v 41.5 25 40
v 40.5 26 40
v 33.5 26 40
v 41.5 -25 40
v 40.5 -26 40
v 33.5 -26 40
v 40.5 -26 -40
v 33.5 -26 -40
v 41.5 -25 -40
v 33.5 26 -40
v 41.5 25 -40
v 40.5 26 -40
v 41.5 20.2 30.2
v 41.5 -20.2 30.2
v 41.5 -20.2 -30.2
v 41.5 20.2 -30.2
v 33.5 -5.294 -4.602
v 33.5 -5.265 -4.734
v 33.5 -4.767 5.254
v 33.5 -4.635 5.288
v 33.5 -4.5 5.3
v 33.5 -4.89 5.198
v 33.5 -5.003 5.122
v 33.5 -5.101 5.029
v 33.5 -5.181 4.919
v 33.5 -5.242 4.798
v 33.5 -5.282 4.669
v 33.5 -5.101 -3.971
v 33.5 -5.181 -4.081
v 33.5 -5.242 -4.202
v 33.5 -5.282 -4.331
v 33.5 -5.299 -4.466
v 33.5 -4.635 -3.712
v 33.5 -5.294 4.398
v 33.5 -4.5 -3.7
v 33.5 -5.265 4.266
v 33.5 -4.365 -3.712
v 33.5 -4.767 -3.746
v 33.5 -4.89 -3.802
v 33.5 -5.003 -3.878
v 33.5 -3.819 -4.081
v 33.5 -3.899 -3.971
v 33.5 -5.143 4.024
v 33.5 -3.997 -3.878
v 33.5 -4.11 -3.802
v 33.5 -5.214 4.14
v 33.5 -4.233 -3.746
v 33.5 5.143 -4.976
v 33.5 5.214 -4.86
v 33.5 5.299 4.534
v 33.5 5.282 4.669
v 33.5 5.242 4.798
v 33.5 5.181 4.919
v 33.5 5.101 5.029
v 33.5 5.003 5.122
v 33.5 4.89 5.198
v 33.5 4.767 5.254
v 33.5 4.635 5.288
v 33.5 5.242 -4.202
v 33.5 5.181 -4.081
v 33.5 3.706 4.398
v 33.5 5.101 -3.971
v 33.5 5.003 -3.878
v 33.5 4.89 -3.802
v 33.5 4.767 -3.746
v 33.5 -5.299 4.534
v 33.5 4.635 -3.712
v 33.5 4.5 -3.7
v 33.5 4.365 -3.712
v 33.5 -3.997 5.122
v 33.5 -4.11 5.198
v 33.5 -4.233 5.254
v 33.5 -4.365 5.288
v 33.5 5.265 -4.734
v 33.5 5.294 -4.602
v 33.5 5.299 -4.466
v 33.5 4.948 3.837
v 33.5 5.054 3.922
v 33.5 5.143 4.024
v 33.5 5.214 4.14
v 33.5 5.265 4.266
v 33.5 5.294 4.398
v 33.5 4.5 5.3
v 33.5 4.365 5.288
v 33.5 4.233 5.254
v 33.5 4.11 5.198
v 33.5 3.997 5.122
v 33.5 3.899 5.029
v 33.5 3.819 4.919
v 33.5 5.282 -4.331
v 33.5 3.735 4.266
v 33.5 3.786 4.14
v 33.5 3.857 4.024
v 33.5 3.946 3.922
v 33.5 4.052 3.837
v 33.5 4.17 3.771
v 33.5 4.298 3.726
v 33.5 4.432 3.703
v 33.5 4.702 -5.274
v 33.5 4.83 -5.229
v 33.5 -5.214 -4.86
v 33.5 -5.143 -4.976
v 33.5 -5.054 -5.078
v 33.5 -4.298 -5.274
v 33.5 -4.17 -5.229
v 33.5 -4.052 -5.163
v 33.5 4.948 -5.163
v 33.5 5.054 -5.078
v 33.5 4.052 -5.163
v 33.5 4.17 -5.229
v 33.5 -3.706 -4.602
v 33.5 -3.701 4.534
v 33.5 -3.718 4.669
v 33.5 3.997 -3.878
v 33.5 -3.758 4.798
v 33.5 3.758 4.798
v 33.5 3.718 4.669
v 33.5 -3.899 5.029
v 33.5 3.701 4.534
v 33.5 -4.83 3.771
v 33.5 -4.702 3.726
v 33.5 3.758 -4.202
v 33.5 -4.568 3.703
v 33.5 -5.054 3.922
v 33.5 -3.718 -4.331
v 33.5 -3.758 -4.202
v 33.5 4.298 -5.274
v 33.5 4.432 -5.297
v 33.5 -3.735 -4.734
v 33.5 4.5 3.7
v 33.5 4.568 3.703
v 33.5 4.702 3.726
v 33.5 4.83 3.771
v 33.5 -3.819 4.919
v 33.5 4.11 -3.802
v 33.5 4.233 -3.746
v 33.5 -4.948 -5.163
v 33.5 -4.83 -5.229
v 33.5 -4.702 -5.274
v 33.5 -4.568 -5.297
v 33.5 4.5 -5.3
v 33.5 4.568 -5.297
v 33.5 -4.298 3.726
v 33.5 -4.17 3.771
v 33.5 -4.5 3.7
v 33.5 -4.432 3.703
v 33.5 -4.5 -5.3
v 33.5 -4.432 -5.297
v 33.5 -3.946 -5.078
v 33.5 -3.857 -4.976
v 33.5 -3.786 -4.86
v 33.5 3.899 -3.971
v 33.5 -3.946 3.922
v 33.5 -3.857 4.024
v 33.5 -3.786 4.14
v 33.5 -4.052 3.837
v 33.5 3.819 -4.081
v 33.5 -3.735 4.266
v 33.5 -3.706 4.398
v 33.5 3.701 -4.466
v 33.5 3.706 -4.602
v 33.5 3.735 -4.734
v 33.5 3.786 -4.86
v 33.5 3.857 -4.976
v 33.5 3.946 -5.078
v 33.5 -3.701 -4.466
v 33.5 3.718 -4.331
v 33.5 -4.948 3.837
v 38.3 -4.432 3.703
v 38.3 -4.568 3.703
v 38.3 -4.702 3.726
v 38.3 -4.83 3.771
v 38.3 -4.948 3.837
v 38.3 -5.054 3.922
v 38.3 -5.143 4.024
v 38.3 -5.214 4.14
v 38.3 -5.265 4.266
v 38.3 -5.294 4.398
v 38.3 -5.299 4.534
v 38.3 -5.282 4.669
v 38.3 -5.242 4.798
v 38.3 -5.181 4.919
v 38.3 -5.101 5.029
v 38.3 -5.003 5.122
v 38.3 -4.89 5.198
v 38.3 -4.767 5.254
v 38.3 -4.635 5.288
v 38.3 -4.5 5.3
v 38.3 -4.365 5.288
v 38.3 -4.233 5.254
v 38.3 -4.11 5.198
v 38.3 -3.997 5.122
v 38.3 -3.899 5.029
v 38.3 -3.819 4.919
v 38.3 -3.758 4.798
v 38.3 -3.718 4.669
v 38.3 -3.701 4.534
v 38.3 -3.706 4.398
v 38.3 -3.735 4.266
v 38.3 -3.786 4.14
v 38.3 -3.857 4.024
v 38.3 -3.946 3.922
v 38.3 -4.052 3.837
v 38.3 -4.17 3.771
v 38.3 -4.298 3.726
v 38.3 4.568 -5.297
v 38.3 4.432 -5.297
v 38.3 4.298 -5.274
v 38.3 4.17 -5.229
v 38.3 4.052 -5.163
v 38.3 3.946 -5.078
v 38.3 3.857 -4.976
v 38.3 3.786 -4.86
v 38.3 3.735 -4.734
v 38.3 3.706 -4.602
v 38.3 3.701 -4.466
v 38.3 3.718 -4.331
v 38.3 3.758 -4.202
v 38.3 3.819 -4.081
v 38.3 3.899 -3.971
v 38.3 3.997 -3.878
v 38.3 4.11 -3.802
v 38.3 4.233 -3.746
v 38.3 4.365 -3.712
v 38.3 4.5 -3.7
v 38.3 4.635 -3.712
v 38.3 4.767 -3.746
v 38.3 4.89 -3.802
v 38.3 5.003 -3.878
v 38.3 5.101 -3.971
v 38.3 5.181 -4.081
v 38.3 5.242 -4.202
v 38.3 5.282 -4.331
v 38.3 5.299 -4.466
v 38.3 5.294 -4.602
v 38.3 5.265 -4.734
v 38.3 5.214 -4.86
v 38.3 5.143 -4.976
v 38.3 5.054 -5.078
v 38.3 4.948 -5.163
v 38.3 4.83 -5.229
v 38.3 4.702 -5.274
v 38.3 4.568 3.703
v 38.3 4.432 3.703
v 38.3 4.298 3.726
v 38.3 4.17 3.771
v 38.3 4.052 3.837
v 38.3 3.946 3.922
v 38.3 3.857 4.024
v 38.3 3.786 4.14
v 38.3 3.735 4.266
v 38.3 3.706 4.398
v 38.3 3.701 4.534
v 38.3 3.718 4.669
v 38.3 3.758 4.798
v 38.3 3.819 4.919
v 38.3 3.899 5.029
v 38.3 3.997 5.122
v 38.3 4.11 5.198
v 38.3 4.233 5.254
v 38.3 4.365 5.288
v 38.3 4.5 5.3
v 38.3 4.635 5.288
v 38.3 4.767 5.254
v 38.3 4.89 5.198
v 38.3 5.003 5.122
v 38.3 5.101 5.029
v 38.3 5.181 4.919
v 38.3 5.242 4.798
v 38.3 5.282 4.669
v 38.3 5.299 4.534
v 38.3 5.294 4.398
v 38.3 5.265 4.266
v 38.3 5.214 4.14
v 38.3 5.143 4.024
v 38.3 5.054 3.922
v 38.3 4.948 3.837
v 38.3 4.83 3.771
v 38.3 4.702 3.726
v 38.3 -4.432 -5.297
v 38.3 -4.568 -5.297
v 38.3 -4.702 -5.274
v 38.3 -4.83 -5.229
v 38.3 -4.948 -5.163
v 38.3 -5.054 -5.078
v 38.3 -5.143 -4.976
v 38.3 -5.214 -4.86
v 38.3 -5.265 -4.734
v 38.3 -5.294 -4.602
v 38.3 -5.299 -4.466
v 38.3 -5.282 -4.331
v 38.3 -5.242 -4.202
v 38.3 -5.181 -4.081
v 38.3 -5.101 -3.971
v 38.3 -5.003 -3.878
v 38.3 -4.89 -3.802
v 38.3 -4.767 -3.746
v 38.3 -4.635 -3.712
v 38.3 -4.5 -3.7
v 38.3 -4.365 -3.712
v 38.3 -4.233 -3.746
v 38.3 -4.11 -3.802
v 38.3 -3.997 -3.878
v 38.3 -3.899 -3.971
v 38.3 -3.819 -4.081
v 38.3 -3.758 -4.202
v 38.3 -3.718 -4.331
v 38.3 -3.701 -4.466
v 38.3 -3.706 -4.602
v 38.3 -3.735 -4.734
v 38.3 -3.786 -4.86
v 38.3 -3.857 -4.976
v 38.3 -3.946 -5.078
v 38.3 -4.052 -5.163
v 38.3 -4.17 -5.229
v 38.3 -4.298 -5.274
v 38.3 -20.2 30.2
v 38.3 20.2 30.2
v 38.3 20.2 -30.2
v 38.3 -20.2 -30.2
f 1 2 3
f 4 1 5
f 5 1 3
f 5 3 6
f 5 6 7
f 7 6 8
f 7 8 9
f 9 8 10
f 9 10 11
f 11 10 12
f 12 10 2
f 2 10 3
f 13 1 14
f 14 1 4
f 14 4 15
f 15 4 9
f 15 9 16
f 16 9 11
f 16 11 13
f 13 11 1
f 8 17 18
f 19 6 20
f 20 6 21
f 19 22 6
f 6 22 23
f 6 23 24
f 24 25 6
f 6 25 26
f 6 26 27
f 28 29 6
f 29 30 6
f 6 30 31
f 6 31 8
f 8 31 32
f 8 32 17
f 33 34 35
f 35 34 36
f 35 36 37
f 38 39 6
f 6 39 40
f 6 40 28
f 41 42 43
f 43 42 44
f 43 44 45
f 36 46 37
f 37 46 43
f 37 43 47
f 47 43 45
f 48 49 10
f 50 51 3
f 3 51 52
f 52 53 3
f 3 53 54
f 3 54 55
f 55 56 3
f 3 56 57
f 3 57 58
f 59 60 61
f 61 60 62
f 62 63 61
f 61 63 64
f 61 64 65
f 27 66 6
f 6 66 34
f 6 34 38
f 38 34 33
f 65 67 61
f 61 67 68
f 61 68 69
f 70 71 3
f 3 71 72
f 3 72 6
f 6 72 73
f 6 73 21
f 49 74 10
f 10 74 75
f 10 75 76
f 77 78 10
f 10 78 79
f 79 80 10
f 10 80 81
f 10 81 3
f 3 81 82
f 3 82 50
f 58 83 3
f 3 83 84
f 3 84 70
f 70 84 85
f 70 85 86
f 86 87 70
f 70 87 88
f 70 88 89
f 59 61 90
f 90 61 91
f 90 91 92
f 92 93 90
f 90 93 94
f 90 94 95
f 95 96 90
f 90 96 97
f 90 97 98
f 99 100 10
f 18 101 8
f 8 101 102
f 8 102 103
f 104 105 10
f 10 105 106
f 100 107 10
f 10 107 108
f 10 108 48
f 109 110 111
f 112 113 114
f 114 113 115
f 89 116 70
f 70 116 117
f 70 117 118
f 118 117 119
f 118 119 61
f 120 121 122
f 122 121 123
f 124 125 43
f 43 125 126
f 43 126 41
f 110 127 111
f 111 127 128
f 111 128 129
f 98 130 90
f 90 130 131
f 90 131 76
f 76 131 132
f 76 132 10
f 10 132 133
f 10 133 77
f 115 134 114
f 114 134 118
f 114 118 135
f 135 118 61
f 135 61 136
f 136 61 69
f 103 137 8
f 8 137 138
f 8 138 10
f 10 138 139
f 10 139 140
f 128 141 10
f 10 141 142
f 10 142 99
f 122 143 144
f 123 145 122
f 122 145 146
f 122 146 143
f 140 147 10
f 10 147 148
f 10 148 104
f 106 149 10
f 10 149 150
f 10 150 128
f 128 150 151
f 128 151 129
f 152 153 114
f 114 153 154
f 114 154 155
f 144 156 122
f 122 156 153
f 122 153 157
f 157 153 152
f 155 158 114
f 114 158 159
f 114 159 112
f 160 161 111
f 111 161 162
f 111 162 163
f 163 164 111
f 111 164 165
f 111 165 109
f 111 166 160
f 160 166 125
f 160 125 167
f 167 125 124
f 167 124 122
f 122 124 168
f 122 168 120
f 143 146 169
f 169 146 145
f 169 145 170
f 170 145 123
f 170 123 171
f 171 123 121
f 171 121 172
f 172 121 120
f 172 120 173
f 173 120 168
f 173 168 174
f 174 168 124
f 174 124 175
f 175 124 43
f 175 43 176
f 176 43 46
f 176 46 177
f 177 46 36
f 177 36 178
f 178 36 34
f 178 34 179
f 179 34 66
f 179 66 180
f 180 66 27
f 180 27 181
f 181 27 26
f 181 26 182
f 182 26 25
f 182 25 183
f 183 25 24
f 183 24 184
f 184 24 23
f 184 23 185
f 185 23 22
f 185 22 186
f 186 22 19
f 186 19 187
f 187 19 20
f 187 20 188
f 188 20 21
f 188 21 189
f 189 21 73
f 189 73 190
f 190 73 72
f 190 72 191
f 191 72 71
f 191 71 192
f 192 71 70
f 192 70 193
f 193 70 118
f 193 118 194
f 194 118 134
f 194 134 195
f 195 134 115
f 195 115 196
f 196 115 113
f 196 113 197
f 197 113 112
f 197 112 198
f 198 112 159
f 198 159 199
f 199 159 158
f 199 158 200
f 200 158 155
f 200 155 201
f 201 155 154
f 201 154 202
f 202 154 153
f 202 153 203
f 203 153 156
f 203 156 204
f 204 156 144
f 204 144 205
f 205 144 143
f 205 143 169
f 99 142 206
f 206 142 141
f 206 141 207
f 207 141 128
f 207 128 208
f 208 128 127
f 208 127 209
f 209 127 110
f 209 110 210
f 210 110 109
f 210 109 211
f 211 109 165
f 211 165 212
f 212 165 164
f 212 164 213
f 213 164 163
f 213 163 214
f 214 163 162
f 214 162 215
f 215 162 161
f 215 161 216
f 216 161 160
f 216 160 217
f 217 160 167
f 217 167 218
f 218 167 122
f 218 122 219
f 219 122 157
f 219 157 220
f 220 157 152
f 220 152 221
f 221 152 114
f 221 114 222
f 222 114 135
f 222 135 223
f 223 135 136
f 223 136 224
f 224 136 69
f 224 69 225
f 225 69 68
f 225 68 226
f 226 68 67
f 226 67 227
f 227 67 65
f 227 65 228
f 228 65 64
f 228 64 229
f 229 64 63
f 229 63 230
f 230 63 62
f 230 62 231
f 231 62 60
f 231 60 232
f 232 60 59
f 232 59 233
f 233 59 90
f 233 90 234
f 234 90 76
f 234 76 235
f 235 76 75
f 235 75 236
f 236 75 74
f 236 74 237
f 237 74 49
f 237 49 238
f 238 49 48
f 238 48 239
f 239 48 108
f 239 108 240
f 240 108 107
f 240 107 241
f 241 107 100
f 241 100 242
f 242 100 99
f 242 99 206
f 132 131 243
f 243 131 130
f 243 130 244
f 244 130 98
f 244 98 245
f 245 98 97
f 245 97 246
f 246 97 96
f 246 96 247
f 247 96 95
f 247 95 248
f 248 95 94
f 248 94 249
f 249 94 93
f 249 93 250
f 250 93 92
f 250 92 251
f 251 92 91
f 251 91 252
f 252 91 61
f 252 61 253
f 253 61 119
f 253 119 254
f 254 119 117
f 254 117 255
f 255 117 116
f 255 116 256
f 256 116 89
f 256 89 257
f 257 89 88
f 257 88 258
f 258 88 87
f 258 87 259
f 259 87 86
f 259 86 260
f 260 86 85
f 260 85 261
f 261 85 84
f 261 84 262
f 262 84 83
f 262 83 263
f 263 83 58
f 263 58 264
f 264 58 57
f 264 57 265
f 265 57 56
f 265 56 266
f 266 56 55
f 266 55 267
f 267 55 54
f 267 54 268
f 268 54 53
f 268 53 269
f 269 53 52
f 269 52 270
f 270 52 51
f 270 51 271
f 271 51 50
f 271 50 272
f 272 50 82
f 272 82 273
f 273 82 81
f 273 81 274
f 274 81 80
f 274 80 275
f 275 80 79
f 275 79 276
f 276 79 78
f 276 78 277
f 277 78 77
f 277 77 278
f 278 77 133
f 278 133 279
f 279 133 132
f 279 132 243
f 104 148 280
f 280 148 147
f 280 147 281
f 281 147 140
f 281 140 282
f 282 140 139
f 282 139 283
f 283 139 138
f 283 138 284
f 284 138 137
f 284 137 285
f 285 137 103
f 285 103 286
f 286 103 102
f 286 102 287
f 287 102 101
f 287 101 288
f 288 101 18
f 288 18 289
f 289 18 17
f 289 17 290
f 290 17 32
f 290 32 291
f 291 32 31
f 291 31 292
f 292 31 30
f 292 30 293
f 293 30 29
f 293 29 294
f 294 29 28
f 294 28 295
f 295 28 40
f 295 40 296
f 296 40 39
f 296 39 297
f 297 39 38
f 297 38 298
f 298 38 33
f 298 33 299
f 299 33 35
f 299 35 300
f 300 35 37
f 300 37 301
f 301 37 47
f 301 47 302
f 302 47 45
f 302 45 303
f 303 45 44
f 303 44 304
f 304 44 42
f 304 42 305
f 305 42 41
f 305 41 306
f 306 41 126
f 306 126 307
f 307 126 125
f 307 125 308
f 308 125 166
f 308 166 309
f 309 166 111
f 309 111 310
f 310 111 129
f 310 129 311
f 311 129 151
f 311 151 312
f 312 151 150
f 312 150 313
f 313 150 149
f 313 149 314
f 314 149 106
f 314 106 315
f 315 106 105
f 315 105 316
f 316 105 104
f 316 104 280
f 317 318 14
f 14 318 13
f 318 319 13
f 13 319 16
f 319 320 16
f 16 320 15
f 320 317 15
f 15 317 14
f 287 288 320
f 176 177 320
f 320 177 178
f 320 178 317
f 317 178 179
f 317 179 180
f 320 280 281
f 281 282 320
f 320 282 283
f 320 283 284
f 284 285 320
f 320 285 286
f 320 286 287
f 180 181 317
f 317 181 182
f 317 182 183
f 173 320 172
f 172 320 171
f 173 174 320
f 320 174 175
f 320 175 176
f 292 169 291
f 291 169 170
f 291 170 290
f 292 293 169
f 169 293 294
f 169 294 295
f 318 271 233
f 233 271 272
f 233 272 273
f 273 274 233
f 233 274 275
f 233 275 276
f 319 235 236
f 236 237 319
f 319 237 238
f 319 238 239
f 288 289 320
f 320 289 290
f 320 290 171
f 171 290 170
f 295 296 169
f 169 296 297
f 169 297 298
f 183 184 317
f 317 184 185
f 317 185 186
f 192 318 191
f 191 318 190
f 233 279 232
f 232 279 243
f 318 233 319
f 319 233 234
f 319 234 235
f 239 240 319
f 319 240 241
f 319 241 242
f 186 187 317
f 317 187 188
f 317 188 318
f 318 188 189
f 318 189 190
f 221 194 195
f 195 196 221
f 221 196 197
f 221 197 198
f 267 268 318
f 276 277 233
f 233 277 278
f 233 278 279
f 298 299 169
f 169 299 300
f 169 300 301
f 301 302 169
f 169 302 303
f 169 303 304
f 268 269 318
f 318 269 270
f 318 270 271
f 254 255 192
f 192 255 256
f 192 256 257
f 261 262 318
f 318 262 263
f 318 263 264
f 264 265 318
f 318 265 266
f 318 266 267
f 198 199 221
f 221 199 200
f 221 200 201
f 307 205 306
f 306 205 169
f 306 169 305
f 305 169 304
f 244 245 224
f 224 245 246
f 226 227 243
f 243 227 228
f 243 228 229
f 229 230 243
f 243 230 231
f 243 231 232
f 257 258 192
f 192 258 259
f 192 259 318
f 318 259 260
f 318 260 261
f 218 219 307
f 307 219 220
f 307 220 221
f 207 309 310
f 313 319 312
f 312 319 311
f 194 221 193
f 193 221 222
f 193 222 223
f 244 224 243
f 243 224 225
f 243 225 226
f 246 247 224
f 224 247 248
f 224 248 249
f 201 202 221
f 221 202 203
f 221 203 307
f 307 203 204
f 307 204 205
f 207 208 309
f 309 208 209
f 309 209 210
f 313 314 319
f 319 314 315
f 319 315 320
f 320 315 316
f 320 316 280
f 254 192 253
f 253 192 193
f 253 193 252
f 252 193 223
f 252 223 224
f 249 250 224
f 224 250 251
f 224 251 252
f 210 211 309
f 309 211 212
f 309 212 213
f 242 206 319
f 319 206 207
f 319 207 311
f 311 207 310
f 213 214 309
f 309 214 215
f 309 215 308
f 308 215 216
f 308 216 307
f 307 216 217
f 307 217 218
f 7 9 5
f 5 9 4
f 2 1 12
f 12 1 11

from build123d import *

# Parameters (mm, degrees)
SKETCH1_W           = 80
SKETCH1_H           = 52
BOSS_EXTRUDE1_DEPTH = 8
SKETCH2_R           = 0.8
CUT_EXTRUDE2_DEPTH  = 5
SKETCH3_W           = 60.4
SKETCH3_H           = 40.4
CUT_EXTRUDE3_DEPTH  = 3.2
CHAMFER1_SIZE       = 1


with BuildPart() as part:
    # Sketch1 → Boss-Extrude1 (new body)
    with BuildSketch(Plane(origin=(33.5, 0, 0), x_dir=(0, 0, -1), z_dir=(1, 0, 0))):
        Rectangle(SKETCH1_W, SKETCH1_H)
    extrude(amount=BOSS_EXTRUDE1_DEPTH)

    # Sketch2 → Cut-Extrude2 (cut)
    with BuildSketch(Plane(origin=(33.5, 0, 0), x_dir=(0, 0, -1), z_dir=(1, 0, 0))):
        with Locations((-4.5, -4.5)):
            Circle(SKETCH2_R)
        with Locations((4.5, -4.5)):
            Circle(SKETCH2_R)
        with Locations((-4.5, 4.5)):
            Circle(SKETCH2_R)
        with Locations((4.5, 4.5)):
            Circle(SKETCH2_R)
    extrude(amount=CUT_EXTRUDE2_DEPTH, mode=Mode.SUBTRACT)

    # Sketch3 → Cut-Extrude3 (cut)
    with BuildSketch(Plane(origin=(41.5, 0, 0), x_dir=(0, 0, -1), z_dir=(1, 0, 0))):
        Rectangle(SKETCH3_W, SKETCH3_H)
    extrude(amount=-CUT_EXTRUDE3_DEPTH, mode=Mode.SUBTRACT)

    # Chamfer1
    chamfer1_edges = [part.edges().sort_by_distance(p)[0] for p in [
        (41.5, 26, 0),
        (41.5, -26, 0),
    ]]
    chamfer(chamfer1_edges, length=CHAMFER1_SIZE)


solid = part.part
